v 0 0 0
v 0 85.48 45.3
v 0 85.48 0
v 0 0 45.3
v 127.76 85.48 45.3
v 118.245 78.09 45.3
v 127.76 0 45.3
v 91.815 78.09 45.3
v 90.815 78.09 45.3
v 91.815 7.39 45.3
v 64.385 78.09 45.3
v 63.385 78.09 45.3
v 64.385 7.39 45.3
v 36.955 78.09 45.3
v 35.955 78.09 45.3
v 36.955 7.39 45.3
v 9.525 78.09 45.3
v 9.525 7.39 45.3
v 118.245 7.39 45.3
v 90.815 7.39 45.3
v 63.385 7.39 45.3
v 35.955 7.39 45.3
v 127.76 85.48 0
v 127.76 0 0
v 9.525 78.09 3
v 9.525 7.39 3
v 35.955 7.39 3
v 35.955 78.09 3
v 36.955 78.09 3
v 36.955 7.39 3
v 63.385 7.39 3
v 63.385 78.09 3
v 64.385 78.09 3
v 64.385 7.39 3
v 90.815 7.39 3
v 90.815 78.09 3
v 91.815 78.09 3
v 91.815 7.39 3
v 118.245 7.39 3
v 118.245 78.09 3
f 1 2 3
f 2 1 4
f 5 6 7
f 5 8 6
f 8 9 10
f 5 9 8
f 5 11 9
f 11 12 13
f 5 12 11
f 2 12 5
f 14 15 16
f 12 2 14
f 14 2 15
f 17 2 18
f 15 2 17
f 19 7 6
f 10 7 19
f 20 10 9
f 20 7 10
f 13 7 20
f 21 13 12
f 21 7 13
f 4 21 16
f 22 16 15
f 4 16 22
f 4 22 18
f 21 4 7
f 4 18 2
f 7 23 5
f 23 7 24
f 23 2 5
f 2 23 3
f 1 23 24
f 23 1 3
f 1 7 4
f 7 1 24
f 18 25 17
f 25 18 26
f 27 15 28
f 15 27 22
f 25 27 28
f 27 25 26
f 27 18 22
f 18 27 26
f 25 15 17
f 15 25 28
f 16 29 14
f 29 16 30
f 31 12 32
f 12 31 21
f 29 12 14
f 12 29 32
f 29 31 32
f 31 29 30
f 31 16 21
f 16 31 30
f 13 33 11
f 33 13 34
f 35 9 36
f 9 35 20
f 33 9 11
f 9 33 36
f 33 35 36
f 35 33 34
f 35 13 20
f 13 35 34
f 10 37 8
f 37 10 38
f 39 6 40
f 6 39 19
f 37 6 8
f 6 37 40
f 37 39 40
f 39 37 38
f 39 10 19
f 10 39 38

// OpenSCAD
// Opentrons Tough 72 mL 4 Well Reservoir
// loadName: opentrons_tough_4_reservoir_72ml
// Auto-generated by labware_to_stl.py from Opentrons V2 labware definition

$fn = 64;

difference() {
    // ── Labware body ──────────────────────────────────────────────
    cube([127.7600, 85.4800, 45.3000]);

    // ── Well cutouts ──────────────────────────────────────────────
    // Well A1
    translate([9.5250, 7.3900, 3.0000])
        cube([26.4300, 70.7000, 43.3000]);
    // Well A2
    translate([36.9550, 7.3900, 3.0000])
        cube([26.4300, 70.7000, 43.3000]);
    // Well A3
    translate([64.3850, 7.3900, 3.0000])
        cube([26.4300, 70.7000, 43.3000]);
    // Well A4
    translate([91.8150, 7.3900, 3.0000])
        cube([26.4300, 70.7000, 43.3000]);
}
